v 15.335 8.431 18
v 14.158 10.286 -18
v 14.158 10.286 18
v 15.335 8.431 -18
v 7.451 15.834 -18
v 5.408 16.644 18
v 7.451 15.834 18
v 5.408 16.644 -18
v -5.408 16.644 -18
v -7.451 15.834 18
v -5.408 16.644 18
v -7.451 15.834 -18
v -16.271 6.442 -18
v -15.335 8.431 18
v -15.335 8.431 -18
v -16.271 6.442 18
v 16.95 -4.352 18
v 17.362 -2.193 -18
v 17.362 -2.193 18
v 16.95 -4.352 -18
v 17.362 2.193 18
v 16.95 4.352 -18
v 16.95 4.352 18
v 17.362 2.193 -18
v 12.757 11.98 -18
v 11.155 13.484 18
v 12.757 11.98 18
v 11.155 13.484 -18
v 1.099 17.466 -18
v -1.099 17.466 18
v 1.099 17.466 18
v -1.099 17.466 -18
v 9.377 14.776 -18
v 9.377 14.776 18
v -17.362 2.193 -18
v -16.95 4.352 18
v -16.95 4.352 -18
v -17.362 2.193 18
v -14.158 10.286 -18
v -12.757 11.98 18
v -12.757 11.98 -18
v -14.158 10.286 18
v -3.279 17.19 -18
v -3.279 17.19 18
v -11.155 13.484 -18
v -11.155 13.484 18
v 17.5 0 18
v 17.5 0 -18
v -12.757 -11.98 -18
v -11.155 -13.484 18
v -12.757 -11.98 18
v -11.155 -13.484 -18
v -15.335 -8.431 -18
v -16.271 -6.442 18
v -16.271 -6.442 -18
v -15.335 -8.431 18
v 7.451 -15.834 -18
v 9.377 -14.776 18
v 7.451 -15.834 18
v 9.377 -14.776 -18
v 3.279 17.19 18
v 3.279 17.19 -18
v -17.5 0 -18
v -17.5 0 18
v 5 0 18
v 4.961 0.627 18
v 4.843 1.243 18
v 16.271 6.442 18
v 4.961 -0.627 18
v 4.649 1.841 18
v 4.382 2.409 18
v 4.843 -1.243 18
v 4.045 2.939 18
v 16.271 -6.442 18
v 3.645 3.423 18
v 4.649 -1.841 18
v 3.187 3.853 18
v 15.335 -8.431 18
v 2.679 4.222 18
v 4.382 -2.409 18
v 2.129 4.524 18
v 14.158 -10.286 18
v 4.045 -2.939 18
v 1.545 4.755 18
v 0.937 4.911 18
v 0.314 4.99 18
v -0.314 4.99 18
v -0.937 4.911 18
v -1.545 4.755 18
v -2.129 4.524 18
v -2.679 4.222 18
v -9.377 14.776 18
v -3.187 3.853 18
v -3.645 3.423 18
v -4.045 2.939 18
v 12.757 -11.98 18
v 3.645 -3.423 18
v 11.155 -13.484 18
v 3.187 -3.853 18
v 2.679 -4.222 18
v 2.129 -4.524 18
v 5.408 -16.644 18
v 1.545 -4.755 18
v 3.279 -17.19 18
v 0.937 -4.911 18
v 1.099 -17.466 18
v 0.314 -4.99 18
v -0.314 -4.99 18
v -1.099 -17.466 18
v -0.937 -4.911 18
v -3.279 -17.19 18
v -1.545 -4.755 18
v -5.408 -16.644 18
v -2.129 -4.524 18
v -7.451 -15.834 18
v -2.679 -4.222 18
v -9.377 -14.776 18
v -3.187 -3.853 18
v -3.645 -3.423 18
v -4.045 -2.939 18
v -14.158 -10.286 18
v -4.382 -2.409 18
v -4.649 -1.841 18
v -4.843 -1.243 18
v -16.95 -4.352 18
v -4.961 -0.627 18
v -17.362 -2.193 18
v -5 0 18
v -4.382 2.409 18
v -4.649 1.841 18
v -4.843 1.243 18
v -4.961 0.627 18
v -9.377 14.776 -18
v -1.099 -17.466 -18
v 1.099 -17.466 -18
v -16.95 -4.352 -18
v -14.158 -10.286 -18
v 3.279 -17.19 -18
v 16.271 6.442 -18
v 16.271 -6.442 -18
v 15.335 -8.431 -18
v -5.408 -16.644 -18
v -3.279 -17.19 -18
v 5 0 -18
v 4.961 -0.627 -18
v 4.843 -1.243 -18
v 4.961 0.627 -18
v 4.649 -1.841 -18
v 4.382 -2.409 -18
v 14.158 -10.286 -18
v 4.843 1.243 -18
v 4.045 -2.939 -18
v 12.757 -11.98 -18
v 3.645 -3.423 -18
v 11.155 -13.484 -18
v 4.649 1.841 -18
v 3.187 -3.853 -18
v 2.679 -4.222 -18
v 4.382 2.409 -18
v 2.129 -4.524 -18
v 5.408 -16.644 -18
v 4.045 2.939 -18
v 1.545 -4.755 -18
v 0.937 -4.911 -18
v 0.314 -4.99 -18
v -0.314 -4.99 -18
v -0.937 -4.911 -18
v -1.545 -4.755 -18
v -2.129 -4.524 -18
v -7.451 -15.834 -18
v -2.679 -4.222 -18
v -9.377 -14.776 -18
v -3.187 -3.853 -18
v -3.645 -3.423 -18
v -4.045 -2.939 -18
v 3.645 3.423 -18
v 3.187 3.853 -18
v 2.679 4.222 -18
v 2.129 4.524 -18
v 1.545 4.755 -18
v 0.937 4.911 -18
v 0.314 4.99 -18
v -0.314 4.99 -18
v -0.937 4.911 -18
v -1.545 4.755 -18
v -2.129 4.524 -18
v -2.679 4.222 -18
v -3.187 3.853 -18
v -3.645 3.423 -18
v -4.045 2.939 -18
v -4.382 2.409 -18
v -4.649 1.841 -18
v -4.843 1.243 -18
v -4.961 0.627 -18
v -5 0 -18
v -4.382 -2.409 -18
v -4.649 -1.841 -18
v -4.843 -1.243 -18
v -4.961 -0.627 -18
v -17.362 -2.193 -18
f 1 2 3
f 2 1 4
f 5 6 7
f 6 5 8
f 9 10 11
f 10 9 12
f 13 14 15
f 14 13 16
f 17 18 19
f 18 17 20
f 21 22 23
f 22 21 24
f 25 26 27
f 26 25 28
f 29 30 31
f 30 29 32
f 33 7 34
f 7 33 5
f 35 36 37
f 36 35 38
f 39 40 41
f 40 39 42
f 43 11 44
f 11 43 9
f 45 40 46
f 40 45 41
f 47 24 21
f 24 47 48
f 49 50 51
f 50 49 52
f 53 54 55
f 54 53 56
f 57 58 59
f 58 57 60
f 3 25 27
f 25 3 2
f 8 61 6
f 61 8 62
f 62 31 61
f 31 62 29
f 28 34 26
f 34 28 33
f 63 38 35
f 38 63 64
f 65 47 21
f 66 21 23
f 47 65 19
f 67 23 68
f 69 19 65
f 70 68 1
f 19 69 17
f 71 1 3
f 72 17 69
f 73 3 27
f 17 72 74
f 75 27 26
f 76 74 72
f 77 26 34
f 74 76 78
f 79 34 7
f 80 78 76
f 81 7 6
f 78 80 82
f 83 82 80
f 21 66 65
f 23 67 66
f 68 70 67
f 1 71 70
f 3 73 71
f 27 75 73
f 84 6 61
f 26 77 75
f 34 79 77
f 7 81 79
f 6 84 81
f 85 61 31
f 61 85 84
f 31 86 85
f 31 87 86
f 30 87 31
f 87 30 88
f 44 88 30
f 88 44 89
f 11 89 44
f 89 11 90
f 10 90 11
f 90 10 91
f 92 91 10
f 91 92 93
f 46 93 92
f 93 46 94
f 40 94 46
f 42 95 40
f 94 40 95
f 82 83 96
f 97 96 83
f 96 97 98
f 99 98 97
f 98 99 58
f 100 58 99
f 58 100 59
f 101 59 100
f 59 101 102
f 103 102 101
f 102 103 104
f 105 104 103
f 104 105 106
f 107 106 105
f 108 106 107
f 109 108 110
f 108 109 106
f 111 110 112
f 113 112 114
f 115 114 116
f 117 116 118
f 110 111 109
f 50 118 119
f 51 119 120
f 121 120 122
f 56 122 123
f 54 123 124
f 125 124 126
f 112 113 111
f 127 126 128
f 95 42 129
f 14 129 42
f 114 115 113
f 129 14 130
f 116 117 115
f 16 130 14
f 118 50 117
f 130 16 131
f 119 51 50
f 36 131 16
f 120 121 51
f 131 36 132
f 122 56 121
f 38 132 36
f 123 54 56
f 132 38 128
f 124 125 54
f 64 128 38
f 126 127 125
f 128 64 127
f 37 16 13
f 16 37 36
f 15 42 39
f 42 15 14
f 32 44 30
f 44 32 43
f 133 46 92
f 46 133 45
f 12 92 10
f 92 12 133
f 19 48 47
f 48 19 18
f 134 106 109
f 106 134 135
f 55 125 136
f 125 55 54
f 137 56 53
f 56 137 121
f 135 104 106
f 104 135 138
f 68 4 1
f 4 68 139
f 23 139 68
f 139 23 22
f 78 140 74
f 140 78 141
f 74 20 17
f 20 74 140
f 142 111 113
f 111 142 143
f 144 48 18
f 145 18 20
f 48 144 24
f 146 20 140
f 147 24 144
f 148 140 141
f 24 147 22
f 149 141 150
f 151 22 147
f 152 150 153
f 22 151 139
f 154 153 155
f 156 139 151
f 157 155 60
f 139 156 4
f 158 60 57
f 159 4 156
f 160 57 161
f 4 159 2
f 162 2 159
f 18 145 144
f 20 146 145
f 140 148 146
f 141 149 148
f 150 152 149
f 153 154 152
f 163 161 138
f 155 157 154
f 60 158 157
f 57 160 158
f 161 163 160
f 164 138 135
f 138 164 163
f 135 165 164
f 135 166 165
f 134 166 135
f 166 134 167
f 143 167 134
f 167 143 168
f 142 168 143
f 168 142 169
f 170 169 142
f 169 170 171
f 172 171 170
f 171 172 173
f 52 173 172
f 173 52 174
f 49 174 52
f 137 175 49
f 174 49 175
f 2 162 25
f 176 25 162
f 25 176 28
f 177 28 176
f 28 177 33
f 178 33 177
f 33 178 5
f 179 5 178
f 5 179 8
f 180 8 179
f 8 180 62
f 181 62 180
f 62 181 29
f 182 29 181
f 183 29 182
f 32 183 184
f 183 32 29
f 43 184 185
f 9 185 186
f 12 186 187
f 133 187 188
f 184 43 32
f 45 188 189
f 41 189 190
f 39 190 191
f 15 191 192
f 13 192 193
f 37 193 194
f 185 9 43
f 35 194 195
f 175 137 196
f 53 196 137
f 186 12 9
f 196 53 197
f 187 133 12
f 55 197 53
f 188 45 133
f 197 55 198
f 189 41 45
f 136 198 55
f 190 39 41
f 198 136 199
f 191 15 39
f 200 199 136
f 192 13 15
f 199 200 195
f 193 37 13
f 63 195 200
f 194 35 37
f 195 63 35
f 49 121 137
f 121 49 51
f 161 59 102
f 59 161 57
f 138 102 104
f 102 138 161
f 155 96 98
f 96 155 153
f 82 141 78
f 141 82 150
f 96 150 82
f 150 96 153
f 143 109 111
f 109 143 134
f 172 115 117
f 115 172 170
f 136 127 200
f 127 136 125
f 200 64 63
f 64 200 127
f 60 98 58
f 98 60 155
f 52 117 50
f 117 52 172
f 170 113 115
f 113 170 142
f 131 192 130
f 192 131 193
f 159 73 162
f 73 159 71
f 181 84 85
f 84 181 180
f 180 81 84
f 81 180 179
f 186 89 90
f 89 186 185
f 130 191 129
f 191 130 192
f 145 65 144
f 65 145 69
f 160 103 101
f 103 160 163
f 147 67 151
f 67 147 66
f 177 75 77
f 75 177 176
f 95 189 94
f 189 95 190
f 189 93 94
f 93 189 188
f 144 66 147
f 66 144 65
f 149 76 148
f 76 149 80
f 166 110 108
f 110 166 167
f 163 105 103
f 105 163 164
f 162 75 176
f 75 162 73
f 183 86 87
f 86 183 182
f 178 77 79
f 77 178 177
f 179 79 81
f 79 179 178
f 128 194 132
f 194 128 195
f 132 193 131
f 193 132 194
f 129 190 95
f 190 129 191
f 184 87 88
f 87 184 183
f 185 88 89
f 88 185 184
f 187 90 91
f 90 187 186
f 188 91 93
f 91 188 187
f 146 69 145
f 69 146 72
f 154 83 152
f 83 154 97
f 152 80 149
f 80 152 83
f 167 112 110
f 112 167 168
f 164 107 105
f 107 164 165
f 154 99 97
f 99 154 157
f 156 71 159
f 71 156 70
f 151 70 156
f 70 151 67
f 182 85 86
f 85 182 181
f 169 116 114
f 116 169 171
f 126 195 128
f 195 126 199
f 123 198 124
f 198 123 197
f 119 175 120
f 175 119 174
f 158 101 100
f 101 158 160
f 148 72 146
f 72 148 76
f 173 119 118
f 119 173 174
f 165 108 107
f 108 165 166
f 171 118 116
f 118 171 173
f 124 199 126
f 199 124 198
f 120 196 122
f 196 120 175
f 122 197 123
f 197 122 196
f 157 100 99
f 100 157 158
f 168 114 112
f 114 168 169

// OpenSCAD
$fn = 50;


difference() {
	union() {
		translate(v = [0, 0, -18.0000000000]) {
			cylinder(h = 36, r = 17.5000000000);
		}
	}
	union() {
		translate(v = [0, 0, -100.0000000000]) {
			cylinder(h = 200, r = 5);
		}
	}
}
